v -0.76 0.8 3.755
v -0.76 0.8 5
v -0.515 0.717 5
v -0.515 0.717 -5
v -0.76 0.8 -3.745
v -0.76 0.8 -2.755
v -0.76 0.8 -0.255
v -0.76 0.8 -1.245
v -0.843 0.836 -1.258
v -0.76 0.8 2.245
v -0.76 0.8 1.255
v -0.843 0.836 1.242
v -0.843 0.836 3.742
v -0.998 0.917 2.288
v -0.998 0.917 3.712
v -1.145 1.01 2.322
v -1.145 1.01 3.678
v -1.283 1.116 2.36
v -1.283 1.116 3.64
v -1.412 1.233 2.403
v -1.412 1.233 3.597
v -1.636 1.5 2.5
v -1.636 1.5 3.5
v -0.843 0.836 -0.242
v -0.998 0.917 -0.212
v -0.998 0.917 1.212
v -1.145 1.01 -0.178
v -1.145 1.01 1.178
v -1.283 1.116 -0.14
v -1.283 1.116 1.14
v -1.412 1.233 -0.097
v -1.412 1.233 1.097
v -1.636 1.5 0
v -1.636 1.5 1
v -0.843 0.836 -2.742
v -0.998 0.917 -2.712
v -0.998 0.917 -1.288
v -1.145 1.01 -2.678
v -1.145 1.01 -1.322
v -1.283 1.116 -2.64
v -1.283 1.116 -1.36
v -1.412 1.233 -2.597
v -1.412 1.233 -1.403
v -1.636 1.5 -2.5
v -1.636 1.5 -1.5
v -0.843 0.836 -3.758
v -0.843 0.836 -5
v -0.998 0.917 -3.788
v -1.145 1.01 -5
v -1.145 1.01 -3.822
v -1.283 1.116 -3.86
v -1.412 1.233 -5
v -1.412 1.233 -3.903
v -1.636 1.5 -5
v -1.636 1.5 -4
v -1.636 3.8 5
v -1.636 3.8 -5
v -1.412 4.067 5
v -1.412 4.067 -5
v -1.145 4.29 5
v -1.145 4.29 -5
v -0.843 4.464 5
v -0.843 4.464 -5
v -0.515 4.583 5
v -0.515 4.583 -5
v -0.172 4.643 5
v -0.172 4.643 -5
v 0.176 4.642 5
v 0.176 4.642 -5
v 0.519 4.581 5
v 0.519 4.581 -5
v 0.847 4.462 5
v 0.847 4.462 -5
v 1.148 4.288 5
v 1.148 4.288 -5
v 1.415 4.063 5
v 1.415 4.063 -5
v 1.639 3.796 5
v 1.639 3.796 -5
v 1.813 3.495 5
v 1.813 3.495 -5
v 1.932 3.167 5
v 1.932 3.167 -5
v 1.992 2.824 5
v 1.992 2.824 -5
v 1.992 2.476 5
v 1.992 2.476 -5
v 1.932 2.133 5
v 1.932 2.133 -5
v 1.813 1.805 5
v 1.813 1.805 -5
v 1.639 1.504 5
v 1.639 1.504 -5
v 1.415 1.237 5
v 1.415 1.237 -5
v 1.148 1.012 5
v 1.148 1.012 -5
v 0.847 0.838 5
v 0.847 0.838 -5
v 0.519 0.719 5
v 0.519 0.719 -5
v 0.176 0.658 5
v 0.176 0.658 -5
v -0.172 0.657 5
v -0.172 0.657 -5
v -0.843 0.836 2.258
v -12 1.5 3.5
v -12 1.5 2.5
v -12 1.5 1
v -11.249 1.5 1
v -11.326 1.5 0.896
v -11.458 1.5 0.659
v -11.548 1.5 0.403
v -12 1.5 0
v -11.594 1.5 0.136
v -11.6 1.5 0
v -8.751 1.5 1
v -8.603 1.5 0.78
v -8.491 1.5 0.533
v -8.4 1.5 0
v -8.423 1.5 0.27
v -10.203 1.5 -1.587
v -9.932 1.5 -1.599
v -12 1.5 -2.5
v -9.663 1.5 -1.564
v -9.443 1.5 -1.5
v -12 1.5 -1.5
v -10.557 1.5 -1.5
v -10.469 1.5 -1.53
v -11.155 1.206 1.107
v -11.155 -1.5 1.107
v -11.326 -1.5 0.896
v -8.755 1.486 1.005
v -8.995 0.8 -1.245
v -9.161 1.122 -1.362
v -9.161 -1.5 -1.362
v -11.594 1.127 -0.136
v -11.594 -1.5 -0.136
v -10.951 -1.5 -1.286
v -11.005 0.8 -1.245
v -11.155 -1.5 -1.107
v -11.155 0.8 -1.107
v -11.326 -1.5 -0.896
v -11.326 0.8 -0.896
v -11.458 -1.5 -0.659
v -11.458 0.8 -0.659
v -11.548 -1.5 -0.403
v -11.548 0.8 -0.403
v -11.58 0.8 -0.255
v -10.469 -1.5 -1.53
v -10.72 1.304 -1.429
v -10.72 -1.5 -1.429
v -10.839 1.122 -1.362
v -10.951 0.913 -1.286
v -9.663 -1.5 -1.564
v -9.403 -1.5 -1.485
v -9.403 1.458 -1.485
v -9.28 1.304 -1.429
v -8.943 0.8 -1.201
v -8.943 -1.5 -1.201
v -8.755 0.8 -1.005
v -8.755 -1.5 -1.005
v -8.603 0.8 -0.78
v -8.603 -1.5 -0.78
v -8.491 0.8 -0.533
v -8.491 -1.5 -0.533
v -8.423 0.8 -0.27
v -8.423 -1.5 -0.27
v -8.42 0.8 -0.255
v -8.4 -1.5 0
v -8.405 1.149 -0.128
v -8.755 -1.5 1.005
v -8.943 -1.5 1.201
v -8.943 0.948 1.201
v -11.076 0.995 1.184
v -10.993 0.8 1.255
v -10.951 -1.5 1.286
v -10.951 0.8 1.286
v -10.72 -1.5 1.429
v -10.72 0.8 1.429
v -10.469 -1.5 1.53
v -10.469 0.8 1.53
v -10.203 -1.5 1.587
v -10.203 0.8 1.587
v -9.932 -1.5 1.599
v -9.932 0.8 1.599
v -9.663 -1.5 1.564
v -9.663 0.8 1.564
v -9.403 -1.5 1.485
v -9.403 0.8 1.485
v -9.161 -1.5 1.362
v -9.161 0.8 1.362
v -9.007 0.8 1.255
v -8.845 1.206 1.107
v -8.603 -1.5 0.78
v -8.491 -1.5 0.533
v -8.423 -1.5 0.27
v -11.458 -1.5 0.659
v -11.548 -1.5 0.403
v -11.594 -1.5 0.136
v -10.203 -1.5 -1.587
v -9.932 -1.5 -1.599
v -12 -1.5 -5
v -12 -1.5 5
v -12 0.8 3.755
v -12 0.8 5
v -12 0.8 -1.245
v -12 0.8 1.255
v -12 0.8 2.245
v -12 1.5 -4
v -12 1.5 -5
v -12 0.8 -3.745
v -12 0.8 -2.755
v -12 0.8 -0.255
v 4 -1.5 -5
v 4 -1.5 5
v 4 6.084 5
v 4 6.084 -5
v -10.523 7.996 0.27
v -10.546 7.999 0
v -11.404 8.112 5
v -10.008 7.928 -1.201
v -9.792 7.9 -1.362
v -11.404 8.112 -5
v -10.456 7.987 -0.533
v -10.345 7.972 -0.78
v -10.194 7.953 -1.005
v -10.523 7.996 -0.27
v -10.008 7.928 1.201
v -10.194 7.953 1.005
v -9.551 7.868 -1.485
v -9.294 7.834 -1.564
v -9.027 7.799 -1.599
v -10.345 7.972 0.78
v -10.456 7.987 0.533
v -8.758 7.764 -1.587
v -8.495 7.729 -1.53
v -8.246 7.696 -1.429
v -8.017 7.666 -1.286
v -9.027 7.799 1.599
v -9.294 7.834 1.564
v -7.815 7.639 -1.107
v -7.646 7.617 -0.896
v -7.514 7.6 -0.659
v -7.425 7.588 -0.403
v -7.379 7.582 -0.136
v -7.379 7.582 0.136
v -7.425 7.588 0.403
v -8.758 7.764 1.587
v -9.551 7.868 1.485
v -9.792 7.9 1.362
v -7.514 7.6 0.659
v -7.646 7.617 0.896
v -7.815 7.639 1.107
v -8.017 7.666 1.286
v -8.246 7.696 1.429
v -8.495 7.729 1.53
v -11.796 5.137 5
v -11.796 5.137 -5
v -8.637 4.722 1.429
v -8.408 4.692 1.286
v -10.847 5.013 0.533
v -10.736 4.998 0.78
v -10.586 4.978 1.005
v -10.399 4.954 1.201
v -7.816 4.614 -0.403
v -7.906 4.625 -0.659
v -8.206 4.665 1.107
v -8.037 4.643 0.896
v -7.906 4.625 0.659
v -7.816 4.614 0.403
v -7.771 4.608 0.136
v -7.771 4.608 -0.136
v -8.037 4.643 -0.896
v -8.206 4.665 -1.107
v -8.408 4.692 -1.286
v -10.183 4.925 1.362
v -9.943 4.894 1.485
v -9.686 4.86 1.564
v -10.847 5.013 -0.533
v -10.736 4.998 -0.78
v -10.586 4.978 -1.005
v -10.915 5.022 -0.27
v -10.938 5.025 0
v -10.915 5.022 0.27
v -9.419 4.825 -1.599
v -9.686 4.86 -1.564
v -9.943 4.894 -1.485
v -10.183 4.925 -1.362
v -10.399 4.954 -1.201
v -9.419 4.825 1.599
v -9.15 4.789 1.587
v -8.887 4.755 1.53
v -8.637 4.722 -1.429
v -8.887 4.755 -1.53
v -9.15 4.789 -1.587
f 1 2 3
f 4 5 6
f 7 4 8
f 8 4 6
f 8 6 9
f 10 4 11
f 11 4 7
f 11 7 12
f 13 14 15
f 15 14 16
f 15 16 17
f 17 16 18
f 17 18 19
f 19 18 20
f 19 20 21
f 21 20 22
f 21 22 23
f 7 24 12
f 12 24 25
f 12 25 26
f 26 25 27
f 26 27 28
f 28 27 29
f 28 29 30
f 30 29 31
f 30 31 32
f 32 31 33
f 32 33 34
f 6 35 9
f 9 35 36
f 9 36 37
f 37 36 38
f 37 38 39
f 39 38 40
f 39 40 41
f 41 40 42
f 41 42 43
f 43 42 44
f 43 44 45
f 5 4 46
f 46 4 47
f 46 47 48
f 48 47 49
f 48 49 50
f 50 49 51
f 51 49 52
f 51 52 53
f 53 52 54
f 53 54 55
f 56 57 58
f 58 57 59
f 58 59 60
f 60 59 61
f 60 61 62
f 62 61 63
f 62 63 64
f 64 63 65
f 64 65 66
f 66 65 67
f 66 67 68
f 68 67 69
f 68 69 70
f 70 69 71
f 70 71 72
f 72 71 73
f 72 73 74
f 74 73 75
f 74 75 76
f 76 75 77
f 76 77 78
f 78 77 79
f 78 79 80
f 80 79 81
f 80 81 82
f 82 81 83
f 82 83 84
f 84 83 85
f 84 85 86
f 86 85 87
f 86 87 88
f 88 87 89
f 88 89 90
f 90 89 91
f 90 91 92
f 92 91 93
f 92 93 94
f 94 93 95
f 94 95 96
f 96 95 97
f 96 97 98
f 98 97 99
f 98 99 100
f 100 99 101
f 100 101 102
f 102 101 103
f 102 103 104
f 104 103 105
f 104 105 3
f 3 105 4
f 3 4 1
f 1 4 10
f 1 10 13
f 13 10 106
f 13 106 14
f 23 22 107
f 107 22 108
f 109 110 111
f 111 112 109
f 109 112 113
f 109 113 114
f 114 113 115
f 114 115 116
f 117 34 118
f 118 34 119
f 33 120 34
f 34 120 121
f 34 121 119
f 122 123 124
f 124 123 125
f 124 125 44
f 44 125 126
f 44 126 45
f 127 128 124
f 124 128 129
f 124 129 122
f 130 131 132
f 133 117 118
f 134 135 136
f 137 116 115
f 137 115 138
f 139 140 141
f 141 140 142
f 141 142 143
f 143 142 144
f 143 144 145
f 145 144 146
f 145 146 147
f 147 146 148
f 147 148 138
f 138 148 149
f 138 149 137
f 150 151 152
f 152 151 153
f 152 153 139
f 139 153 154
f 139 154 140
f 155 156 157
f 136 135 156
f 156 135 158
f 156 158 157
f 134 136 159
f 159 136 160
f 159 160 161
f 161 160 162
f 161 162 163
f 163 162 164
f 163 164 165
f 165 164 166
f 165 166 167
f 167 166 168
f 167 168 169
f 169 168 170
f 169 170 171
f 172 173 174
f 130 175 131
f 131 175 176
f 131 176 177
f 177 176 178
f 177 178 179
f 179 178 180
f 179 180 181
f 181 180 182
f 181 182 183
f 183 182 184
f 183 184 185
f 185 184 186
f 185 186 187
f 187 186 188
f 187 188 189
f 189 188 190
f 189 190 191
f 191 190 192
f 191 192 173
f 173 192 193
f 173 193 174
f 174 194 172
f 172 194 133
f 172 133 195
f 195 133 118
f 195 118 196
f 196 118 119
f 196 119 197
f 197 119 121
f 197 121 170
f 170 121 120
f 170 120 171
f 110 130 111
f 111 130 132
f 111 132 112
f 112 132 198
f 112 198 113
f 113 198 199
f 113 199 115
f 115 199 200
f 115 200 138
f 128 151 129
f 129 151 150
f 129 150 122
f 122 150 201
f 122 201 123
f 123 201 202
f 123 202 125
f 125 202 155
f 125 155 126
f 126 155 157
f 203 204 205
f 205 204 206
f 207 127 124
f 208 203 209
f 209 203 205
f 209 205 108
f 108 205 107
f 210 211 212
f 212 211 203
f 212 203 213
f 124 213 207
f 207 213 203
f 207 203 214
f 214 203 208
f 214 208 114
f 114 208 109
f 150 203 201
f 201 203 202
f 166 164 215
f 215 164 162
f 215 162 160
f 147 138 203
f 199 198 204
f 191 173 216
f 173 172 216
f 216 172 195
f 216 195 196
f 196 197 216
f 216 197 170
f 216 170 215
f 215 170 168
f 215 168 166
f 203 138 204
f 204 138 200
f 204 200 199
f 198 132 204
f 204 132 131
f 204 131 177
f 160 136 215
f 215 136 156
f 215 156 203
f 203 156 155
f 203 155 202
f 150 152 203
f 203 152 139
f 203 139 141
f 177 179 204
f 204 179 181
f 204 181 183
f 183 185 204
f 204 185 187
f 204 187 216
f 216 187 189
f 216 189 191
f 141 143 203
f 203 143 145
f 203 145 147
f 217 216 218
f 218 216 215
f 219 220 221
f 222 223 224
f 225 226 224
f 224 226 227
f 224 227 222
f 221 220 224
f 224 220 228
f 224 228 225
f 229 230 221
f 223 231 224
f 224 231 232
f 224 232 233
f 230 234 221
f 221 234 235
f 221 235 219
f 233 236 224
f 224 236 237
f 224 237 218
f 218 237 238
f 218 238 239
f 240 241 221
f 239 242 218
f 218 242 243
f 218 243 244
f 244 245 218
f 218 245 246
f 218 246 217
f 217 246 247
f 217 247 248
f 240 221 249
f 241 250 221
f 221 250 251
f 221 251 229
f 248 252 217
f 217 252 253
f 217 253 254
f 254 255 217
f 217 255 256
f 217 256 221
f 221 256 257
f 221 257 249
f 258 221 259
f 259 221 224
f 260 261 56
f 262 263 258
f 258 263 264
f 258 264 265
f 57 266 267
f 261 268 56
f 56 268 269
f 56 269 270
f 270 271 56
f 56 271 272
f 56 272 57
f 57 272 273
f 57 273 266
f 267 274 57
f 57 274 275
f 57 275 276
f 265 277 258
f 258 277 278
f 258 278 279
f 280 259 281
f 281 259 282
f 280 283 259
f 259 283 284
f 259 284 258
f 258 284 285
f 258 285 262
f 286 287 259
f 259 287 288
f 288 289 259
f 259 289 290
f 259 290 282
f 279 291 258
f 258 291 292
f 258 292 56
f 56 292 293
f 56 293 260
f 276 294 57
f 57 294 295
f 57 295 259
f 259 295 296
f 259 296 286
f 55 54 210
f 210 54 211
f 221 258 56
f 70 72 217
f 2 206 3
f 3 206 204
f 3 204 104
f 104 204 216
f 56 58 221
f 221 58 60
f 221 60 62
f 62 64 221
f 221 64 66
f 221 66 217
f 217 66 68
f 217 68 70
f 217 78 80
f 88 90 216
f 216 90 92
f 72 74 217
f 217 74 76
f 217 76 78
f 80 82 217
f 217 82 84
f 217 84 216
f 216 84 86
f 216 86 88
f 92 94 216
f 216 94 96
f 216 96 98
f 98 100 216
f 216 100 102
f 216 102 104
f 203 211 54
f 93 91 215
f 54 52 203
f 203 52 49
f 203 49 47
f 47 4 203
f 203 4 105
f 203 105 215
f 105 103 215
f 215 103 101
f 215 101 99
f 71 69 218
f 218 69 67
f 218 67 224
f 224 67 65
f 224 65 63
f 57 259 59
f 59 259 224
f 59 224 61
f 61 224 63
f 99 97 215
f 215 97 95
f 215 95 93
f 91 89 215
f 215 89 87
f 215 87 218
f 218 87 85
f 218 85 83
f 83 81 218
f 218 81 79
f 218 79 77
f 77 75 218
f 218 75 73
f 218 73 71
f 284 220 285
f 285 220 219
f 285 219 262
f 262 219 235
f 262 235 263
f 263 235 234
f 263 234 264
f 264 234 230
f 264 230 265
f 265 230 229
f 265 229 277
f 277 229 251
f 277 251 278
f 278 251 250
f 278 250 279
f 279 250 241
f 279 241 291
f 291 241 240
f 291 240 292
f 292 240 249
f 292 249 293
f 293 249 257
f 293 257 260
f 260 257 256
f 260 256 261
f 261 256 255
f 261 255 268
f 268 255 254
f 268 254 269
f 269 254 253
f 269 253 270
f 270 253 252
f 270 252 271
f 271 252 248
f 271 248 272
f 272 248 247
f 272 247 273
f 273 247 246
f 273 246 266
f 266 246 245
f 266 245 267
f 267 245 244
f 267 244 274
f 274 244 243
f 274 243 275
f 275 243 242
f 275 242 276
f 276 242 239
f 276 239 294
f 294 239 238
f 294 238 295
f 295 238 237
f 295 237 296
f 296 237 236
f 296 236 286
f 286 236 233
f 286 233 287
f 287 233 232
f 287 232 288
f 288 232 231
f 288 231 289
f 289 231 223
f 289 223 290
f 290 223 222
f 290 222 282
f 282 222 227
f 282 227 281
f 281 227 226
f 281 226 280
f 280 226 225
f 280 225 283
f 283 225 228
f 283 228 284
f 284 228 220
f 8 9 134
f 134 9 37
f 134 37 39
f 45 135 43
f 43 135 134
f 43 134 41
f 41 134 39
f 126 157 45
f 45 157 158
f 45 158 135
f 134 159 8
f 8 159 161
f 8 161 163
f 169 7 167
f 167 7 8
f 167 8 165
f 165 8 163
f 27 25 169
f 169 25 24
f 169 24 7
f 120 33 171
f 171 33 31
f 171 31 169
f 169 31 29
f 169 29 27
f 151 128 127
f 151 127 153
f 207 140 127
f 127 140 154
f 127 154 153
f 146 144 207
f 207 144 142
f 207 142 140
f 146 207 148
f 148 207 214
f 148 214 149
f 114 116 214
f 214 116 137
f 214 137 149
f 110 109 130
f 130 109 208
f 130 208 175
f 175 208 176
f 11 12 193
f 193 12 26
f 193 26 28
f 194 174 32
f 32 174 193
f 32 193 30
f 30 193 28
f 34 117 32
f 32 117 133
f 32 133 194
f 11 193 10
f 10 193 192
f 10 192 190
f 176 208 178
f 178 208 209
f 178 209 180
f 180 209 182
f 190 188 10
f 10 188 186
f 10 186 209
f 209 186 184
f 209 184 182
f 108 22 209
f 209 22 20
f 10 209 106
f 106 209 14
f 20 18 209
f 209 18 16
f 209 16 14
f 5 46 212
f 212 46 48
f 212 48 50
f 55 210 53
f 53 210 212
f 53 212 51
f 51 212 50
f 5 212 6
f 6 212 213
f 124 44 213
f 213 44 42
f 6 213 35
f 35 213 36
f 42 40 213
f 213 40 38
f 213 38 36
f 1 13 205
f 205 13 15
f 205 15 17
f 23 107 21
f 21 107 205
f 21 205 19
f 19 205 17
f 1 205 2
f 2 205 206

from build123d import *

# Parameters (mm, degrees)
BOSS_EXTRUDE1_DEPTH      = 5
CUT_EXTRUDE5_REACH       = 11.607
SKETCH4_R                = 1.6
CUT_EXTRUDE6_REACH       = 11.612
SKETCH5_R                = 1.6
CUT_EXTRUDE12_DEPTH      = 1
CUT_EXTRUDE12_DEPTH_BACK = 12


with BuildPart() as part:
    # Sketch1 → Boss-Extrude1 (new body, symmetric)
    with BuildSketch(Plane.XY):
        with BuildLine():
            Line((4, 6.083853012), (-11.403967093, 8.111823753))
            Line((-11.403967093, 8.111823753), (-11.795545669, 5.137489168))
            Line((-11.795545669, 5.137489168), (-1.636306817, 3.8))
            ThreePointArc((-1.636306817, 3.8), (2, 2.65), (-1.636306817, 1.5))
            Line((-1.636306817, 1.5), (-12, 1.5))
            Line((-12, 1.5), (-12, -1.5))
            Line((-12, -1.5), (4, -1.5))
            Line((4, -1.5), (4, 6.083853012))
        make_face()
    extrude(amount=BOSS_EXTRUDE1_DEPTH, both=True)

    # Sketch4 → Cut-Extrude5 (cut, up to next)
    with BuildSketch(Plane(origin=(0.855456861, 6.49783997, 0), x_dir=(0.991444861, -0.130526192, 0), z_dir=(0.130526192, 0.991444861, 0)), mode=Mode.PRIVATE) as cut_extrude5_sk1:
        with Locations((-9.9, 0)):
            Circle(SKETCH4_R)
    cut_extrude5_tool1 = extrude(cut_extrude5_sk1.sketch, amount=-CUT_EXTRUDE5_REACH, mode=Mode.PRIVATE) & part.part
    add(cut_extrude5_tool1.solids().sort_by_distance((-8.959847, 7.790049, 0))[0], mode=Mode.SUBTRACT)

    # Sketch5 → Cut-Extrude6 (cut, up to next)
    with BuildSketch(Plane.XZ.offset(1.5), mode=Mode.PRIVATE) as cut_extrude6_sk1:
        with Locations((-10, 0)):
            Circle(SKETCH5_R)
    cut_extrude6_tool1 = extrude(cut_extrude6_sk1.sketch, amount=-CUT_EXTRUDE6_REACH, mode=Mode.PRIVATE) & part.part
    add(cut_extrude6_tool1.solids().sort_by_distance((-10, -1.5, 0))[0], mode=Mode.SUBTRACT)

    # Sketch6 → Cut-Extrude12 (cut, two sides)
    with BuildSketch(Plane.ZY.offset(12)) as cut_extrude12_sk:
        Polygon((-2.5, 1.5), (-4, 1.5), (-3.745220836, 0.8), (-2.754779164, 0.8), align=None)
        Polygon((0, 1.5), (-1.5, 1.5), (-1.245220836, 0.8), (-0.254779164, 0.8), align=None)
        Polygon((3.754779164, 0.8), (5, 0.8), (5, 1.5), (3.5, 1.5), align=None)
        Polygon((2.5, 1.5), (1, 1.5), (1.254779164, 0.8), (2.245220836, 0.8), align=None)
    extrude(amount=CUT_EXTRUDE12_DEPTH, mode=Mode.SUBTRACT)
    extrude(cut_extrude12_sk.sketch, amount=-CUT_EXTRUDE12_DEPTH_BACK, mode=Mode.SUBTRACT)


solid = part.part
